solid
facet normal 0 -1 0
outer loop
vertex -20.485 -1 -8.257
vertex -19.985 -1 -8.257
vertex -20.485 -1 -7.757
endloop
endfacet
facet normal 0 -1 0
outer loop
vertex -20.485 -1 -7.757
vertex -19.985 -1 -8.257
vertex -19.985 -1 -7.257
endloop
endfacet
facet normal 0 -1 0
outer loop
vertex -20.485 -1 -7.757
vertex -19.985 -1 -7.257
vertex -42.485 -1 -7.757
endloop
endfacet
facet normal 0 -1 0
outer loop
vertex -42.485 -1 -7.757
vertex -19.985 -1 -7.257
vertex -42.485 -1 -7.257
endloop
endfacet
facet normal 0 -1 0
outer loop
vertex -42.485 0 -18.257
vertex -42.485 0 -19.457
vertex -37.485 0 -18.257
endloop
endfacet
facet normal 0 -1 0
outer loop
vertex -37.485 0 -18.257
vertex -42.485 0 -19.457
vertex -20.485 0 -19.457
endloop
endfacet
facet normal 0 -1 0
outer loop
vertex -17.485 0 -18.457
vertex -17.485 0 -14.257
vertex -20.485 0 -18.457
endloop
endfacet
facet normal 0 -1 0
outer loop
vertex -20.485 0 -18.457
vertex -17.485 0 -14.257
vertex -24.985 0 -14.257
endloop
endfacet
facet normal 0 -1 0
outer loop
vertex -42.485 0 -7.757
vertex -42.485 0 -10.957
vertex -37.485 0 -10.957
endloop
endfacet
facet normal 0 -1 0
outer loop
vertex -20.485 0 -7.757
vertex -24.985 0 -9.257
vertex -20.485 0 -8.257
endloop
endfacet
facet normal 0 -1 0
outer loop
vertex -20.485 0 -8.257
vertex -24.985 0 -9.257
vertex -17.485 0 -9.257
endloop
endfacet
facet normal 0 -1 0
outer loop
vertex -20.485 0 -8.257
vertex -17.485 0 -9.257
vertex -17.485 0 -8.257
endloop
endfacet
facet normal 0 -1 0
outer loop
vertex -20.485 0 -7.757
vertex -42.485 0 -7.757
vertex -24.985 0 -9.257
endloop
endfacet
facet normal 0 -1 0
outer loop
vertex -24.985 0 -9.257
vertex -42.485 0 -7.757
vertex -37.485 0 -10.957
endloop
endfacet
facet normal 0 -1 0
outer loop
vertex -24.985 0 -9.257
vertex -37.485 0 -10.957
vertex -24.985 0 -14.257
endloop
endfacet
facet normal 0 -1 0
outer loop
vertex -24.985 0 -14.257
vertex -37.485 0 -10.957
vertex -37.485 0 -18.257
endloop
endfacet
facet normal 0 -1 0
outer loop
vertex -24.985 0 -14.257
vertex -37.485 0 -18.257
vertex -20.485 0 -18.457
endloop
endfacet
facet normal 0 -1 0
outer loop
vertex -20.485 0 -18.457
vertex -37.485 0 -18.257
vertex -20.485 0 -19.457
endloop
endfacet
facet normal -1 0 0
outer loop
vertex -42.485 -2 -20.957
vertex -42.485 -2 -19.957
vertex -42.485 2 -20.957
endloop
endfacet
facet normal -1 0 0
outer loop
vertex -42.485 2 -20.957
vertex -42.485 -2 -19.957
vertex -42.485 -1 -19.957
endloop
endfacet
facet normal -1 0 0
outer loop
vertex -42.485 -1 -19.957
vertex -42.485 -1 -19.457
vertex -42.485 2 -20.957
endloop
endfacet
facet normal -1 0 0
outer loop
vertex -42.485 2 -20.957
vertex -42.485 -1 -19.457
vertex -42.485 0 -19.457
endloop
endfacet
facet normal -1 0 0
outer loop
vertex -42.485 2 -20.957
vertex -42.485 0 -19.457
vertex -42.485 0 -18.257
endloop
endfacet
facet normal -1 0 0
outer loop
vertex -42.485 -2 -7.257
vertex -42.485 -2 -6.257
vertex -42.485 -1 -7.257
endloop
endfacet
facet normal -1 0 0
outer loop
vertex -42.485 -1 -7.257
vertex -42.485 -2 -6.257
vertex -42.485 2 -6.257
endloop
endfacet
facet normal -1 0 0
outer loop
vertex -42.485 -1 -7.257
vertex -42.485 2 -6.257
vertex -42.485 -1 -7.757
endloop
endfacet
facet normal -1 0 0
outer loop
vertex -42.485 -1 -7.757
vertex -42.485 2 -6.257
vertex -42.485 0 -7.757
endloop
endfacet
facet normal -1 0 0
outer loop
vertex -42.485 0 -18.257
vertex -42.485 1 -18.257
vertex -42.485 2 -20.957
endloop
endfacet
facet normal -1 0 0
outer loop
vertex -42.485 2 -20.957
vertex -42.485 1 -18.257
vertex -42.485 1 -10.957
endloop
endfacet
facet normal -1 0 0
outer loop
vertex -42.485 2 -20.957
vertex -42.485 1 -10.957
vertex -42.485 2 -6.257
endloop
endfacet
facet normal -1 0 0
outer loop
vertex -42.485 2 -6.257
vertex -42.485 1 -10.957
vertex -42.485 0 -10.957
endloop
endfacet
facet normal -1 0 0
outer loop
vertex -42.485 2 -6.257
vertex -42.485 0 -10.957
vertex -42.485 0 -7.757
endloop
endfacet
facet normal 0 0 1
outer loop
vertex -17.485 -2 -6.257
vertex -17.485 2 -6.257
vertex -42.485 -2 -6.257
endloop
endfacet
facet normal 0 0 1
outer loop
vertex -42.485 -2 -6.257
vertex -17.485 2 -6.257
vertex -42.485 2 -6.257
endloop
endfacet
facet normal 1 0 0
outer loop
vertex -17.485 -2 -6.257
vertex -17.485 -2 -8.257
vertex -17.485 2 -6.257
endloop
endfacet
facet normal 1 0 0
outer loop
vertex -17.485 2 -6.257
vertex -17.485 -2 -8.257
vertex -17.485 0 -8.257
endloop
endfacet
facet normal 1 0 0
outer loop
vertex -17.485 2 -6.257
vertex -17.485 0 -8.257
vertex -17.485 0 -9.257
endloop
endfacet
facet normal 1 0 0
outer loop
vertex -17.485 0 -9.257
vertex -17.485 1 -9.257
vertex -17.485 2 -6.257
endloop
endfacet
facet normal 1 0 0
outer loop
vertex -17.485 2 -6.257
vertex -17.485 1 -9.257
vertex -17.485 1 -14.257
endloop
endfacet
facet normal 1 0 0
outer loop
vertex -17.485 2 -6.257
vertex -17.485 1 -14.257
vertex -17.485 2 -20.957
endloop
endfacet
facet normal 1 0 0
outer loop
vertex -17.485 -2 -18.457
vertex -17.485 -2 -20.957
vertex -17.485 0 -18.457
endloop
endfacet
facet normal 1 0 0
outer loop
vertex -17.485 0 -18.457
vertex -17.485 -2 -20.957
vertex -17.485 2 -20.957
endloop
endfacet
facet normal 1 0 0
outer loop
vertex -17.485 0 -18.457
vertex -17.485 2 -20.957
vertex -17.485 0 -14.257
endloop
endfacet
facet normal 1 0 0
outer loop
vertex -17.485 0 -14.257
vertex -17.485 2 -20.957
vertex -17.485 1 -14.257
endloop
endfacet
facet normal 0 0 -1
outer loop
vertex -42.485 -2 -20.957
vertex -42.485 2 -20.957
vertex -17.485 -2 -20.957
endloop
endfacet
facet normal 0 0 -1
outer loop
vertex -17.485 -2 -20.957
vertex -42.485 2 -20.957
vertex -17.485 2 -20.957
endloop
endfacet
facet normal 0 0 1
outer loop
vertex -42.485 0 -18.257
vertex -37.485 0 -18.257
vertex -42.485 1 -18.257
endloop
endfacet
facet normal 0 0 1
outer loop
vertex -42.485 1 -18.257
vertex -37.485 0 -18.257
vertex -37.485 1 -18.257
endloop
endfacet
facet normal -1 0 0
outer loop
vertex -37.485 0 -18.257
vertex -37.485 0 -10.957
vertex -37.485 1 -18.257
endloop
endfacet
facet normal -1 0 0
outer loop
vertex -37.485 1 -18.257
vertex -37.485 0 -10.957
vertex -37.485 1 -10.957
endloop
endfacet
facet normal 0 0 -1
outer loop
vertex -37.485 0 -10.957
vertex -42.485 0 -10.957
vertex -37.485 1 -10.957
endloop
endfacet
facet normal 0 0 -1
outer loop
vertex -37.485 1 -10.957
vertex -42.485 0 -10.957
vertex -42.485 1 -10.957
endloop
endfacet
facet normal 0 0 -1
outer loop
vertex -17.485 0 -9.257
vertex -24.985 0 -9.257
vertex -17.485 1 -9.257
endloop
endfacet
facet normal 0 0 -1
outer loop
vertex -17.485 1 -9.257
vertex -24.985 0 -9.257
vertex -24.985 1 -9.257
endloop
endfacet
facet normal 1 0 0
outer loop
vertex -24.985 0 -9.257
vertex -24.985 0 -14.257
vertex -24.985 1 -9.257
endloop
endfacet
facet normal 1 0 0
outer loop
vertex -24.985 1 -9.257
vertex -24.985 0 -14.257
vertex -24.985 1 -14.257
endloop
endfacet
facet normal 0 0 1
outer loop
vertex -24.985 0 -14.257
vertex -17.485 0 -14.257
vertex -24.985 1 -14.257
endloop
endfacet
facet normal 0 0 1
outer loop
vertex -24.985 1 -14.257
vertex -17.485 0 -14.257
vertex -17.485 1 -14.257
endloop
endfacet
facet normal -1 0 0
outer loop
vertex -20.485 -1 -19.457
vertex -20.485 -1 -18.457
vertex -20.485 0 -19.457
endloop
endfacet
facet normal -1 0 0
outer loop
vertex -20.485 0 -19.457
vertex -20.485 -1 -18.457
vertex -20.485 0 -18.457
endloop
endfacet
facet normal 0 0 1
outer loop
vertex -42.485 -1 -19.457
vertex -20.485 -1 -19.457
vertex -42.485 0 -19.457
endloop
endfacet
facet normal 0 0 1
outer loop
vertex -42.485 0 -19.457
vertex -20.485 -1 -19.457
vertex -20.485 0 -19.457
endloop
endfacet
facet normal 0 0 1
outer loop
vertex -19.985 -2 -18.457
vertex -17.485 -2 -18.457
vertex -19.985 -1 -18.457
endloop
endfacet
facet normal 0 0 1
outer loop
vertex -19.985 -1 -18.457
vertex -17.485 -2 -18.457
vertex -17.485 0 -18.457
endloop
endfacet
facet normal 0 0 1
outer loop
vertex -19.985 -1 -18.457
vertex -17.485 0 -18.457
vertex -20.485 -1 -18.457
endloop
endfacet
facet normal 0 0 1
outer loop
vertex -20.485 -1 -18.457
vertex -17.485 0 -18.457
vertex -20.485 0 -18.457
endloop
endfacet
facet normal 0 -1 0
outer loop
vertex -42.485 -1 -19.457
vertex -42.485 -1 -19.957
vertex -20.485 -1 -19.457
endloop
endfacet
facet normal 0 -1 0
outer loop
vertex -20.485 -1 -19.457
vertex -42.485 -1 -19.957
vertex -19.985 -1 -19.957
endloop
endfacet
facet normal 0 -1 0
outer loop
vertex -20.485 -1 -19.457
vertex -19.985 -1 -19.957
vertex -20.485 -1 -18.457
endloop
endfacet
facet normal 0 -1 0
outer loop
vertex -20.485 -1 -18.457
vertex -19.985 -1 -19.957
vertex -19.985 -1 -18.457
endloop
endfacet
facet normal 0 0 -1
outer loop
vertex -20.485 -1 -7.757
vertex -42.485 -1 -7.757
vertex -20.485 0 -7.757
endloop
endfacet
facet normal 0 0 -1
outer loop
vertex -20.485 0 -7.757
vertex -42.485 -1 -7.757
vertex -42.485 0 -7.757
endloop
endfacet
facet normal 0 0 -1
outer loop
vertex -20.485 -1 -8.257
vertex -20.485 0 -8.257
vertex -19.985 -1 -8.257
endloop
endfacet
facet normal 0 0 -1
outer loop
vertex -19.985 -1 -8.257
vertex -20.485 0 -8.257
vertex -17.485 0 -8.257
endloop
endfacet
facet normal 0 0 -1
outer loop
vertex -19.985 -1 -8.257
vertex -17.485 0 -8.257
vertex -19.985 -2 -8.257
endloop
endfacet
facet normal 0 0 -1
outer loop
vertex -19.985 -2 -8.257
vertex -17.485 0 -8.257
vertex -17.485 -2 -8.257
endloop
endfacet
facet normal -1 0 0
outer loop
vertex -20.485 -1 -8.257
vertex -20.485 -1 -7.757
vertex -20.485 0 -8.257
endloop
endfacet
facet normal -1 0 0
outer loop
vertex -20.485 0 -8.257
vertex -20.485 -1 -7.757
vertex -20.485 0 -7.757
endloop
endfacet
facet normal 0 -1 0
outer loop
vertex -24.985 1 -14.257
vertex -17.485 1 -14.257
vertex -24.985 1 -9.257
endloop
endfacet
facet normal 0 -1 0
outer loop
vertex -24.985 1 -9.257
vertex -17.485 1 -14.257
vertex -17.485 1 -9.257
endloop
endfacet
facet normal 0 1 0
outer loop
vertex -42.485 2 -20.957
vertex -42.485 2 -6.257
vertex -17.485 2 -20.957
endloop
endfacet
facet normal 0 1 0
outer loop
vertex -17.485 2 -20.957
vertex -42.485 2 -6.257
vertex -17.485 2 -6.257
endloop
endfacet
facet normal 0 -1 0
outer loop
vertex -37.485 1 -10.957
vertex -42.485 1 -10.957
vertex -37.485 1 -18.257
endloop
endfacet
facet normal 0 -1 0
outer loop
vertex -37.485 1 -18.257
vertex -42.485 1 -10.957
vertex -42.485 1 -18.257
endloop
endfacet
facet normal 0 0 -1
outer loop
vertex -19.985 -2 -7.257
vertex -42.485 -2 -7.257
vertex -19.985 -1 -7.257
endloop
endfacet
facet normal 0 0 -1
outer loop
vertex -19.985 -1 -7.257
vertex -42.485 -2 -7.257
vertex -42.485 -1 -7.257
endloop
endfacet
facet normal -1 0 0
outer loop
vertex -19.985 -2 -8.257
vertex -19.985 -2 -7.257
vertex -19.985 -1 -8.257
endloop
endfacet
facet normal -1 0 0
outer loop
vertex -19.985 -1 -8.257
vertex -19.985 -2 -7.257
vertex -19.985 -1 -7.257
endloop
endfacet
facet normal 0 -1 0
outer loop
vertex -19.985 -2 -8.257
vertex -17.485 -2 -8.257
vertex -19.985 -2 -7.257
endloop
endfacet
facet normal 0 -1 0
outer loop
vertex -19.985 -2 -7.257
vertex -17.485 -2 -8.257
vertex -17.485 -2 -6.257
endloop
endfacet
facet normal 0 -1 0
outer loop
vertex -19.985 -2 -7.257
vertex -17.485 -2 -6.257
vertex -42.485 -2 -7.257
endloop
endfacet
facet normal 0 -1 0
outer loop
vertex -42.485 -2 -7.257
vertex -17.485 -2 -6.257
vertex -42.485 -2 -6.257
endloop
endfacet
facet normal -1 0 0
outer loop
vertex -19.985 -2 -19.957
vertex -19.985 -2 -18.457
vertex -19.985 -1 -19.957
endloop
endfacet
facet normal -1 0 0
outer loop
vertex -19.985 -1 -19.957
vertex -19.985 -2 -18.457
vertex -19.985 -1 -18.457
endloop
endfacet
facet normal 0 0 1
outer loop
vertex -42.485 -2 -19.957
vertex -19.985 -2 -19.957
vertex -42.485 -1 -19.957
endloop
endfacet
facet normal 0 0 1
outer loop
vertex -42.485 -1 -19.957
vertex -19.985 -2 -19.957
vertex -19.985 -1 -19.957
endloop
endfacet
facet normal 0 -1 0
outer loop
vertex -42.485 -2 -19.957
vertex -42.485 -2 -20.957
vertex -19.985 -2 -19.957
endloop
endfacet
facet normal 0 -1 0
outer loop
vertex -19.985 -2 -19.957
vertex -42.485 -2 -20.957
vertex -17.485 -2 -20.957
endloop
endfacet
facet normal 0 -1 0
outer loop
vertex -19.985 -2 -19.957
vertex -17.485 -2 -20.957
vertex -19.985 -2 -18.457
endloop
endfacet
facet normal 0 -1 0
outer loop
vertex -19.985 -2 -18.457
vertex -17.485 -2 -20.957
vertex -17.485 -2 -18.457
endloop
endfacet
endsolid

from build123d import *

# Parameters (mm, degrees)
SKETCH1_W           = 25
SKETCH1_H           = 14.7
BOSS_EXTRUDE1_DEPTH = 1
SKETCH2_W           = 5
SKETCH2_H           = 7.3
CUT_EXTRUDE1_DEPTH  = 1
SKETCH3_W           = 7.5
SKETCH3_H           = 5
CUT_EXTRUDE2_DEPTH  = 1
BOSS_EXTRUDE2_DEPTH = 1
SKETCH9_W           = 25
SKETCH9_H           = 14.7
BOSS_EXTRUDE3_DEPTH = 1
SKETCH11_W          = 22.5
SKETCH11_H          = 1
SKETCH11_W_2        = 2.5
SKETCH11_H_2        = 1.5
BOSS_EXTRUDE5_DEPTH = 1


with BuildPart() as part:
    # Sketch1 → Boss-Extrude1 (new body)
    with BuildSketch(Plane(origin=(0, 0, 0), x_dir=(1, 0, 0), z_dir=(0, 1, 0))):
        with Locations((-29.985488774, 13.606547542)):
            Rectangle(SKETCH1_W, SKETCH1_H)
    extrude(amount=BOSS_EXTRUDE1_DEPTH)

    # Sketch2 → Cut-Extrude1 (cut)
    with BuildSketch(Plane(origin=(0, 1, 0), x_dir=(1, 0, 0), z_dir=(0, 1, 0))):
        with Locations((-39.985488774, 14.606547542)):
            Rectangle(SKETCH2_W, SKETCH2_H)
    extrude(amount=-CUT_EXTRUDE1_DEPTH, mode=Mode.SUBTRACT)

    # Sketch3 → Cut-Extrude2 (cut)
    with BuildSketch(Plane(origin=(0, 1, 0), x_dir=(1, 0, 0), z_dir=(0, 1, 0))):
        with Locations((-21.235488774, 11.756547542)):
            Rectangle(SKETCH3_W, SKETCH3_H)
    extrude(amount=-CUT_EXTRUDE2_DEPTH, mode=Mode.SUBTRACT)

    # Sketch4 → Boss-Extrude2 (add)
    with BuildSketch(Plane.XZ):
        Polygon((-42.485488774, -6.256547542), (-42.485488774, -7.756547542), (-20.485488774, -7.756547542), (-20.485488774, -8.256547542), (-17.485488774, -8.256547542), (-17.485488774, -6.256547542), align=None)
        Polygon((-20.485488774, -19.456547542), (-42.485488774, -19.456547542), (-42.485488774, -20.956547542), (-17.485488774, -20.956547542), (-17.485488774, -18.456547542), (-20.485488774, -18.456547542), align=None)
    extrude(amount=BOSS_EXTRUDE2_DEPTH)

    # Sketch9 → Boss-Extrude3 (add)
    with BuildSketch(Plane(origin=(0, 1, 0), x_dir=(1, 0, 0), z_dir=(0, 1, 0))):
        with Locations((-29.985488774, 13.606547542)):
            Rectangle(SKETCH9_W, SKETCH9_H)
    extrude(amount=BOSS_EXTRUDE3_DEPTH)

    # Sketch11 → Boss-Extrude5 (add)
    with BuildSketch(Plane(origin=(0, -1, 0), x_dir=(-1, 0, 0), z_dir=(0, -1, 0))):
        with Locations((31.235488774, 6.756547542)):
            Rectangle(SKETCH11_W, SKETCH11_H)
        with Locations((18.735488774, 6.756547542)):
            Rectangle(SKETCH11_W_2, SKETCH11_H)
        with Locations((18.735488774, 7.756547542)):
            Rectangle(SKETCH11_W_2, SKETCH11_H)
        with Locations((18.735488774, 19.206547542)):
            Rectangle(SKETCH11_W_2, SKETCH11_H_2)
        with Locations((18.735488774, 20.456547542)):
            Rectangle(SKETCH11_W_2, SKETCH11_H)
        with Locations((31.235488774, 20.456547542)):
            Rectangle(SKETCH11_W, SKETCH11_H)
    extrude(amount=BOSS_EXTRUDE5_DEPTH)


solid = part.part
